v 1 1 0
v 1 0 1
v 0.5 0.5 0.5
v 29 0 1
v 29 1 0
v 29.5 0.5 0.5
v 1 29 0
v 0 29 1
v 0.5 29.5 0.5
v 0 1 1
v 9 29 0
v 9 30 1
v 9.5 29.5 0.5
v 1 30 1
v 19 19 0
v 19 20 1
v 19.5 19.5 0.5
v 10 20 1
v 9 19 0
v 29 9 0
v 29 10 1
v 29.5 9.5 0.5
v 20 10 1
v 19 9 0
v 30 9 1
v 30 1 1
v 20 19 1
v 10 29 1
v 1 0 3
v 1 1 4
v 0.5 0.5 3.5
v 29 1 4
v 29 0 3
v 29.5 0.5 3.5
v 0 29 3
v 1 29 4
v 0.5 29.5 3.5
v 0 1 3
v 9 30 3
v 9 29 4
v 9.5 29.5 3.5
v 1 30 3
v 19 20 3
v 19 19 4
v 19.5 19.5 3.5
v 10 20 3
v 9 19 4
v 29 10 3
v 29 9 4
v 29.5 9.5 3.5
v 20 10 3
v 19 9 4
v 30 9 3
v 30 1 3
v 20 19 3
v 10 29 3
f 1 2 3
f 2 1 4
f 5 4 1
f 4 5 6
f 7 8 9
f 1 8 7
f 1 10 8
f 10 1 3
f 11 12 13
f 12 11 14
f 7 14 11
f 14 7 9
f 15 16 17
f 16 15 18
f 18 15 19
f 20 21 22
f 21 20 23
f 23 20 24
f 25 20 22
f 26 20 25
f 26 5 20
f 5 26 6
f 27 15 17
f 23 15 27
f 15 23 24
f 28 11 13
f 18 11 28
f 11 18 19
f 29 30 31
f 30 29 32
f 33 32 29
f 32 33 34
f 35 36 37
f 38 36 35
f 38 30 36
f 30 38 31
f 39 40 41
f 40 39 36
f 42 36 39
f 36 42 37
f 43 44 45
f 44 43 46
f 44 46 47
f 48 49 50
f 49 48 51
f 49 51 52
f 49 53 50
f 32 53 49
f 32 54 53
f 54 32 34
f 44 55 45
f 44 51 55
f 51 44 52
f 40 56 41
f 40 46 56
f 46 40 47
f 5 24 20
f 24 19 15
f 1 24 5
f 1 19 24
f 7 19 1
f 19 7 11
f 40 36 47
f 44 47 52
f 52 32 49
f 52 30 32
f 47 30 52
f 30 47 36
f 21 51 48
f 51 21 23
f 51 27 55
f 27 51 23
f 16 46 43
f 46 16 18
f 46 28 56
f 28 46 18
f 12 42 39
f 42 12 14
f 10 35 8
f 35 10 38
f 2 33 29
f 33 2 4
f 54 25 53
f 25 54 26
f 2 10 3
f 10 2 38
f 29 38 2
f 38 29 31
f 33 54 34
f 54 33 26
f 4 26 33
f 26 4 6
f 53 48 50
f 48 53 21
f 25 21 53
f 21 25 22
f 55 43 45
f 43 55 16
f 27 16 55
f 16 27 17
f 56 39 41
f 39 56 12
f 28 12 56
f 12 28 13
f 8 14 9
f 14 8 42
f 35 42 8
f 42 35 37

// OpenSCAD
height = 4;

module block() {
    linear_extrude(height,convexity=10)
    union() {
        square([10,30]);
        square([20,20]);
        square([30,10]);
    }
}

// This makes a tool shape to cut a horizontal chamfer
module chamfer(length=32) {
    translate([-1,0,0])
    rotate([0,90,0])
    linear_extrude(length)
    polygon([[-1,0],[0,1],[1,0],[0,-1]]);
}

// This makes a tool shape to cut a vertical chamfer
module v_chamfer() {
    translate([0,0,-1])
    linear_extrude(height+2)
    polygon([[-1,0],[0,1],[1,0],[0,-1]]);
}

// These cut the sharp squares in the inside corners
module inside_corner_wedges(height) {
    union() {
        translate([2,2,height+1]) rotate([180,0,270])  // top face
            linear_extrude(2,scale=0.5) square(4);
        translate([2,2,-1]) rotate([0,0,180])          // bottom face
            linear_extrude(2,scale=0.5) square(4);
    }
}

// This makes a chamfer path tracing the outline of the block
module chamfer_path() {
    chamfer();
    rotate([0,0,90]) chamfer();
    translate([0,30,0]) chamfer(12);
    translate([11,20,0]) chamfer(11);
    translate([21,10,0]) chamfer(11);
    translate([30,0,0]) rotate([0,0,90]) chamfer(12);
    translate([20,11,0]) rotate([0,0,90]) chamfer(11);
    translate([10,21,0]) rotate([0,0,90]) chamfer(11);
}

difference() {
    // Start with a block
    block();
    // Then make all the chamfer cuts
    chamfer_path();                           // bottom
    translate([0,0,height]) chamfer_path();   // top
    // Sides
    v_chamfer();
    translate([30, 0,0]) v_chamfer();
    translate([30,10,0]) v_chamfer();
    translate([20,20,0]) v_chamfer();
    translate([10,30,0]) v_chamfer();
    translate([ 0,30,0]) v_chamfer();
    // Cuts to clean up concave corners on top and bottom faces
    translate([20,10,0]) inside_corner_wedges(height);
    translate([10,20,0]) inside_corner_wedges(height);
}
